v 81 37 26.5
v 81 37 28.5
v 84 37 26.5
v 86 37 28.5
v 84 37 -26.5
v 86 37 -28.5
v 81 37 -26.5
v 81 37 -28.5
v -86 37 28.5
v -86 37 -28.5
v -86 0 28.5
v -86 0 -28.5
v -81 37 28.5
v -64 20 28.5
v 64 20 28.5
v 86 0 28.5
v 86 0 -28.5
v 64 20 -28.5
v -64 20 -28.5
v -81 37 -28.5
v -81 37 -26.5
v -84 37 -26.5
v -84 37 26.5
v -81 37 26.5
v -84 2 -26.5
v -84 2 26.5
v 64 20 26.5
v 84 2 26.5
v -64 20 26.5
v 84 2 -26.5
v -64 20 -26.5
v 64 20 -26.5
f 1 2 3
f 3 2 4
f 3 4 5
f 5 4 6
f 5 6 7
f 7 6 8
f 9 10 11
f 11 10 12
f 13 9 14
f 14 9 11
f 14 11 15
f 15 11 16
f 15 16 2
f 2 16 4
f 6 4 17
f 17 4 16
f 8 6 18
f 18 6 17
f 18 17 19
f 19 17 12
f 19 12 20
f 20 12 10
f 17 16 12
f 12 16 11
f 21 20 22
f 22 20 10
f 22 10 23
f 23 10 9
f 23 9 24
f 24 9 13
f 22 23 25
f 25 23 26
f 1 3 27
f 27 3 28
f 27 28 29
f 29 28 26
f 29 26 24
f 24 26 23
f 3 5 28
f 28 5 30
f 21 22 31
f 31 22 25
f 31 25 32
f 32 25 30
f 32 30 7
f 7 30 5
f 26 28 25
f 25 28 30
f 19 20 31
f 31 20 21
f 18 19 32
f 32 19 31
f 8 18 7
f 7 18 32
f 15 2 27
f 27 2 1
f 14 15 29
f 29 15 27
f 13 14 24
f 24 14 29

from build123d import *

# Parameters (mm, degrees)
SKETCH_1_W          = 172
SKETCH_1_H          = 57
EXTRUDE_1_DEPTH     = 2
SKETCH_3_W          = 172
SKETCH_3_H          = 57
SKETCH_3_W_2        = 168
SKETCH_3_H_2        = 53
EXTRUDE_2_DEPTH     = 35
CUT_EXTRUDE_1_DEPTH = 110.608393839


with BuildPart() as part:
    # 草图1 → 凸台-拉伸1 (new body)
    with BuildSketch(Plane(origin=(0, 0, 0), x_dir=(1, 0, 0), z_dir=(0, 1, 0))):
        Rectangle(SKETCH_1_W, SKETCH_1_H)
    extrude(amount=EXTRUDE_1_DEPTH)

    # 草图3 → 凸台-拉伸2 (add)
    with BuildSketch(Plane(origin=(0, 2, 0), x_dir=(1, 0, 0), z_dir=(0, 1, 0))):
        Rectangle(SKETCH_3_W, SKETCH_3_H)
        Rectangle(SKETCH_3_W_2, SKETCH_3_H_2, mode=Mode.SUBTRACT)
    extrude(amount=EXTRUDE_2_DEPTH)

    # 草图4 → 切除-拉伸1 (cut, through all)
    with BuildSketch(Plane.XY.offset(28.5)):
        Polygon((-81, 37), (-64, 20), (64, 20), (81, 37), align=None)
    extrude(amount=-CUT_EXTRUDE_1_DEPTH, mode=Mode.SUBTRACT)


solid = part.part
